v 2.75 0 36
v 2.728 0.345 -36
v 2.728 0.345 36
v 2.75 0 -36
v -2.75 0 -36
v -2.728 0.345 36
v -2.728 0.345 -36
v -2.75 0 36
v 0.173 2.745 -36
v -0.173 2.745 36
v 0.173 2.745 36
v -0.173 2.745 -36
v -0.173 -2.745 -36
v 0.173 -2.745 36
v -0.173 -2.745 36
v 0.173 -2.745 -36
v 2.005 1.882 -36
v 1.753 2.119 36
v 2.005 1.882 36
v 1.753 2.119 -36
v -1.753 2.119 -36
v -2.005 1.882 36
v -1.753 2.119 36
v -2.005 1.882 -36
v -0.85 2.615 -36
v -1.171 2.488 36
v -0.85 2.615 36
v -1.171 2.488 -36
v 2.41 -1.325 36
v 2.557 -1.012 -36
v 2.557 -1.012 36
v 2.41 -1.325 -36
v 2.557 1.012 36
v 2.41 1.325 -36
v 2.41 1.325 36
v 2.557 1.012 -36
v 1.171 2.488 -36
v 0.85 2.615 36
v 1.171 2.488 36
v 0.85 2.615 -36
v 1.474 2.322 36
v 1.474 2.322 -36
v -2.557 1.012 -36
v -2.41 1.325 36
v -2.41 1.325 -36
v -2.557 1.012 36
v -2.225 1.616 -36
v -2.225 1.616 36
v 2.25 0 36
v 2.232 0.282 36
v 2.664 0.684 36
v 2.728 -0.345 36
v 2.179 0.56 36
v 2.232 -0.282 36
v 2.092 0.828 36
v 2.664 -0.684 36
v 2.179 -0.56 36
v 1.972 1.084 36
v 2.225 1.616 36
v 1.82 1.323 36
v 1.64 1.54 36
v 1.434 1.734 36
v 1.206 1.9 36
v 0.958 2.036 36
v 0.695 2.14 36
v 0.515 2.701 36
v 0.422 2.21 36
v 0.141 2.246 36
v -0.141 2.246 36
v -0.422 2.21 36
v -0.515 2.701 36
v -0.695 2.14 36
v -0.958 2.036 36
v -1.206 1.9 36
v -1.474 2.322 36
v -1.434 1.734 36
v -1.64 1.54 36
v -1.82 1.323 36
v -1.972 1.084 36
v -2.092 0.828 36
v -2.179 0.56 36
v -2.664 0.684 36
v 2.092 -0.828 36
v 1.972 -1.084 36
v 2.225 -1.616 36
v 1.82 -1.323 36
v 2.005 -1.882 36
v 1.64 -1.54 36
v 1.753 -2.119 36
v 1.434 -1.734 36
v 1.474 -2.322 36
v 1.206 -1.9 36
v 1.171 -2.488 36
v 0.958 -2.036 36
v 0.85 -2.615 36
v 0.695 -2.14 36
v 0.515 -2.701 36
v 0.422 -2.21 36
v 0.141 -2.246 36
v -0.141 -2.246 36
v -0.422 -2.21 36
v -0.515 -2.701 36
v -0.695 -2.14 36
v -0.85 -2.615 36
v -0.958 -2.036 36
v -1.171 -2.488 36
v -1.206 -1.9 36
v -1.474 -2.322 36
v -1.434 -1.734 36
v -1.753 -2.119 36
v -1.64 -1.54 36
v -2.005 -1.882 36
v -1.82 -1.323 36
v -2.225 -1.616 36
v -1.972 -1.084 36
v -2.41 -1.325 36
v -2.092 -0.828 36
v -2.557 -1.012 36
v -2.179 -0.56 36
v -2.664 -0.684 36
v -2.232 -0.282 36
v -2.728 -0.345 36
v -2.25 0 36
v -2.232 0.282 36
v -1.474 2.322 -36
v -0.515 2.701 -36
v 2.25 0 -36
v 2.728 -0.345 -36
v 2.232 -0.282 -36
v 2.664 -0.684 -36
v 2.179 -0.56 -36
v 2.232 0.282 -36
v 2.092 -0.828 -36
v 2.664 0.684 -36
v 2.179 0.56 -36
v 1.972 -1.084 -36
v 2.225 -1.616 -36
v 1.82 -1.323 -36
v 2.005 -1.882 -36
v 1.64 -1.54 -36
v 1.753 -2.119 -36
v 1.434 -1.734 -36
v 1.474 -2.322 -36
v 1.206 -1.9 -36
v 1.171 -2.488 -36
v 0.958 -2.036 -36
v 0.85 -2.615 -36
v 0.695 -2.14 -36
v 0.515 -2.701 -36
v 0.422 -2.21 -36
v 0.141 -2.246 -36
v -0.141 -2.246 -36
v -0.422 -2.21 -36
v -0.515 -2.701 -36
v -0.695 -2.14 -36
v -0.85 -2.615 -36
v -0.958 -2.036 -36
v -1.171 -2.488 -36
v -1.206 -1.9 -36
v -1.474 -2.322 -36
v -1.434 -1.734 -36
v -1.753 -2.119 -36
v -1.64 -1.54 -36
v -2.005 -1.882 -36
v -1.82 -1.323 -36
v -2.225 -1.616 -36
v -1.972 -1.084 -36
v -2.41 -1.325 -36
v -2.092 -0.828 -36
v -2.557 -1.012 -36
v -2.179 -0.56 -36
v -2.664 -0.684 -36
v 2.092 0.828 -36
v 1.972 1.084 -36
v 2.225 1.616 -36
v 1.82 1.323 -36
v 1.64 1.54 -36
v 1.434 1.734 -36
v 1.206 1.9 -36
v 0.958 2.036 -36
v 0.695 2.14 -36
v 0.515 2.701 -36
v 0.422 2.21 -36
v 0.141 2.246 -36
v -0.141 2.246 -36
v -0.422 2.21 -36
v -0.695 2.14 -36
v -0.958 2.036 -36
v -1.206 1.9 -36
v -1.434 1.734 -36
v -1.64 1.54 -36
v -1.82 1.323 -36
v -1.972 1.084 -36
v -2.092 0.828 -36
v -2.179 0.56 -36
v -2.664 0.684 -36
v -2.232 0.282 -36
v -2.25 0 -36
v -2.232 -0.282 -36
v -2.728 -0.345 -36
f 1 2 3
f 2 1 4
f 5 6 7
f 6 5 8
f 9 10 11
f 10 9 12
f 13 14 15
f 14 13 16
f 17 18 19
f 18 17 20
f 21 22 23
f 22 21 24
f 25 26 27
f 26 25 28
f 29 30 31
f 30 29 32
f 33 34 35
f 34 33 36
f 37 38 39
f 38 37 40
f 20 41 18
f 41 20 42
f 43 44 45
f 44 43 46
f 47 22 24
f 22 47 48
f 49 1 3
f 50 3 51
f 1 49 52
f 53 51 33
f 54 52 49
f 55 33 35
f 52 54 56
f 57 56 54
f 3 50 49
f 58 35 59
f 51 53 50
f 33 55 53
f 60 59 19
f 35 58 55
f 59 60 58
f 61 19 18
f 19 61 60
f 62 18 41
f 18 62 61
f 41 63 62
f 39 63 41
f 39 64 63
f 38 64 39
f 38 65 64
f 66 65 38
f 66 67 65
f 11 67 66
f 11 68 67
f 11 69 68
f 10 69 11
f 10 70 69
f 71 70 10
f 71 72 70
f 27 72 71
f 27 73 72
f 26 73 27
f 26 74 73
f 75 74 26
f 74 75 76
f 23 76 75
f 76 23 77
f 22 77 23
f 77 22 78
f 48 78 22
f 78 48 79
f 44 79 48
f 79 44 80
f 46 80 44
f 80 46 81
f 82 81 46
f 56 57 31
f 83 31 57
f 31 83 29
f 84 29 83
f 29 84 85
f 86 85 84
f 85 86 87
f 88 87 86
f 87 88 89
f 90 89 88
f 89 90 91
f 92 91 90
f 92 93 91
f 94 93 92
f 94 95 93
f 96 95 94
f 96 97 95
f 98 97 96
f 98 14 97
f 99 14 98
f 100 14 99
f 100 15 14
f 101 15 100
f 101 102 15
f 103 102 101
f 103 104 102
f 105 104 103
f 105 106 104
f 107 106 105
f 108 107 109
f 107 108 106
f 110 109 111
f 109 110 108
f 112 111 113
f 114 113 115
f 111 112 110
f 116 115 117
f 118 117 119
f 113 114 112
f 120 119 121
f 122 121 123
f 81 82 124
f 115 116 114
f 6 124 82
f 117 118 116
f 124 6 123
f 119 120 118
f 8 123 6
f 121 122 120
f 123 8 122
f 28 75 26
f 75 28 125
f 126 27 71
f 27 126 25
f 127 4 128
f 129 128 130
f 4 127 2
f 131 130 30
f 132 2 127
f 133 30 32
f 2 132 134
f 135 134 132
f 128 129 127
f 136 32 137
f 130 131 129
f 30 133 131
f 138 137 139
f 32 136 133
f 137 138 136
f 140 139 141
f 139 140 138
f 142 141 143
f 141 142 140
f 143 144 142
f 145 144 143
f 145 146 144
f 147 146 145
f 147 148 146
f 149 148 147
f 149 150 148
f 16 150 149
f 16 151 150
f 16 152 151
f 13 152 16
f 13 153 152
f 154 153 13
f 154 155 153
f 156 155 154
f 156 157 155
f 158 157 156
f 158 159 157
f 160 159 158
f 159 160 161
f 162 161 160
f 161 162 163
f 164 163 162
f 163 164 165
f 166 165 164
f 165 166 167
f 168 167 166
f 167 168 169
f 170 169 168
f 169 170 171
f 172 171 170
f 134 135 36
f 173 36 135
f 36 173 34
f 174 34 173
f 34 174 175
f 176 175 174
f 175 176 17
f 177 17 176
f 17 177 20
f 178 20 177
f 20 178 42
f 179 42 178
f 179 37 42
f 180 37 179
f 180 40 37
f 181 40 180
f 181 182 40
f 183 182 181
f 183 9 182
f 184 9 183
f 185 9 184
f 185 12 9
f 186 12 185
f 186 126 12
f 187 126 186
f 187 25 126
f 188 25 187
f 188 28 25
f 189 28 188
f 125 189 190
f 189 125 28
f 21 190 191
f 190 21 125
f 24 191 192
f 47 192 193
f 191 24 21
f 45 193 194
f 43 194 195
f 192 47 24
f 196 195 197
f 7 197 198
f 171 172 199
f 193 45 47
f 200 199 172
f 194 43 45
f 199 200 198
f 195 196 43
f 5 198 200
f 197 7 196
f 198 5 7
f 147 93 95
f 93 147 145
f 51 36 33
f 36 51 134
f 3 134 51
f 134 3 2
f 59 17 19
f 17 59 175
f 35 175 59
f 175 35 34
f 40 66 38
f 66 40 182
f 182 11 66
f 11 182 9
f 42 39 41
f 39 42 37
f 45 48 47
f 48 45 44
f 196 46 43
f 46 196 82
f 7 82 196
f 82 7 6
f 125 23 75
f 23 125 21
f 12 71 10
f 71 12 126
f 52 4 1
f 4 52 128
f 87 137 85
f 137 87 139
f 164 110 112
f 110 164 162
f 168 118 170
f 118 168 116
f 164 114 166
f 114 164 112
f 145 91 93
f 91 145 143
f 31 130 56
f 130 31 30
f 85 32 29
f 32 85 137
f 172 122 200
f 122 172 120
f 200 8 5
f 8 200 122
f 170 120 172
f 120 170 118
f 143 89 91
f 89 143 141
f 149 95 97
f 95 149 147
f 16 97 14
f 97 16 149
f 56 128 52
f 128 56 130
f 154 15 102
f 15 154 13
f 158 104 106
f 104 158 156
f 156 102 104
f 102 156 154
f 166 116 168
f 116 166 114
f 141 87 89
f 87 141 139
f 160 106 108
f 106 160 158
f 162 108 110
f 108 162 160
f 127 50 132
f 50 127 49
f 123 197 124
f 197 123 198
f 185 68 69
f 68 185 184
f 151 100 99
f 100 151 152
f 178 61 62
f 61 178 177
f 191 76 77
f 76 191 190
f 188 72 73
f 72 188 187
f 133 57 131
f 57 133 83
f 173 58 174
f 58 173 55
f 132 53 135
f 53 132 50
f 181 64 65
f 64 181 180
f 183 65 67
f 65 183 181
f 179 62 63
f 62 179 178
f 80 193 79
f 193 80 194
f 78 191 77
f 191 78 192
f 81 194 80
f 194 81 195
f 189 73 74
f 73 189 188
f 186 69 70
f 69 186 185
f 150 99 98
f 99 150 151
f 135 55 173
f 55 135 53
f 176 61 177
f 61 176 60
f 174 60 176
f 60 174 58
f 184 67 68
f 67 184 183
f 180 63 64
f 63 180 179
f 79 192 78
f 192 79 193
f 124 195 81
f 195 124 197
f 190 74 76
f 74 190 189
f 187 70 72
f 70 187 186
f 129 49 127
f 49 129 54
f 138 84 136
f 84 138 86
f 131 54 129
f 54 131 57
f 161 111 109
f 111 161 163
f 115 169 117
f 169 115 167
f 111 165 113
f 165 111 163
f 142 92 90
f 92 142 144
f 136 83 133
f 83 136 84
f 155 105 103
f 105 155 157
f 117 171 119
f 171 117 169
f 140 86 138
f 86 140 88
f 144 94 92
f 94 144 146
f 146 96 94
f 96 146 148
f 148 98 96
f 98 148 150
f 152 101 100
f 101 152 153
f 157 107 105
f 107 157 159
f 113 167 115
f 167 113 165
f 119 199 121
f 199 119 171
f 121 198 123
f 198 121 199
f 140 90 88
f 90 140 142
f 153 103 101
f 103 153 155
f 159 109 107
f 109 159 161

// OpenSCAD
$fn = 50;


difference() {
	union() {
		translate(v = [0, 0, -36.0000000000]) {
			cylinder(h = 72, r = 2.7500000000);
		}
	}
	union() {
		translate(v = [0, 0, -100.0000000000]) {
			cylinder(h = 200, r = 2.2500000000);
		}
	}
}
